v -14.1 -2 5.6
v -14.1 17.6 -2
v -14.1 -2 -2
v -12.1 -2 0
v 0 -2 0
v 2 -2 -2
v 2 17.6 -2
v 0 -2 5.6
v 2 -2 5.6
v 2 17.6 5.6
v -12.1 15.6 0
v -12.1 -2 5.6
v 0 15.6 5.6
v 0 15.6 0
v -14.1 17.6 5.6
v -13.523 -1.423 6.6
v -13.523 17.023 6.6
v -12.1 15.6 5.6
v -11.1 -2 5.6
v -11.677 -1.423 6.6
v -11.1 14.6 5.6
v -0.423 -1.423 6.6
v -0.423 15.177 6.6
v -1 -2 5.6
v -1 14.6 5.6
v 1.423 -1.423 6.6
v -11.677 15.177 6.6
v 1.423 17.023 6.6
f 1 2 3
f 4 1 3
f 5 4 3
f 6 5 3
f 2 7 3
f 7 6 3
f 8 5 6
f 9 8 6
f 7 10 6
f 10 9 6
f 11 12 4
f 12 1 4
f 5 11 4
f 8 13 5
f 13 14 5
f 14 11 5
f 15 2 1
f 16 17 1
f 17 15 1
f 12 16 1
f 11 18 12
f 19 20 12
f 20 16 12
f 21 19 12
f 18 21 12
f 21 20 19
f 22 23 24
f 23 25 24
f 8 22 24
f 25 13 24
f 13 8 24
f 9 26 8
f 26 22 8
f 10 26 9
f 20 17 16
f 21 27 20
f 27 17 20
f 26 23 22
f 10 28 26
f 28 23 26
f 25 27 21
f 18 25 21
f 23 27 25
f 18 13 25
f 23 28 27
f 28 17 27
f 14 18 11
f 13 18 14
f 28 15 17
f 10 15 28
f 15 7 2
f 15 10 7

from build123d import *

# Parameters (mm, degrees)
RESSALTO_EXTRUS_O1_DEPTH = 5.6
ESBO_O1_3_W              = 16.1
ESBO_O1_3_H              = 19.6
RESSALTO_EXTRUS_O2_DEPTH = 2
RESSALTO_EXTRUS_O3_DEPTH = 1
RESSALTO_EXTRUS_O3_DRAFT = 30


with BuildPart() as part:
    # Esboço1 → Ressalto-extrusão1 (new body)
    with BuildSketch(Plane.XY):
        Polygon((0, 0), (0, -2), (2, -2), (2, 17.6), (-14.1, 17.6), (-14.1, -2), (-12.1, -2), (-12.1, 0), (-12.1, 15.6), (0, 15.6), align=None)
    extrude(amount=RESSALTO_EXTRUS_O1_DEPTH)

    # Esboço1<3> → Ressalto-extrusão2 (add)
    with BuildSketch(Plane.XY):
        with Locations((-6.05, 7.8)):
            Rectangle(ESBO_O1_3_W, ESBO_O1_3_H)
    extrude(amount=-RESSALTO_EXTRUS_O2_DEPTH)


with BuildPart() as ressalto_extrus_o3_tool:
    # Esboço2 → Ressalto-extrusão3 (with draft: the straight prism first)
    with BuildSketch(Plane.XY.offset(5.6)):
        Polygon((-11.1, -2), (-11.1, 14.6), (-1, 14.6), (-1, -2), (2, -2), (2, 17.6), (-14.1, 17.6), (-14.1, -2), align=None)
    extrude(amount=RESSALTO_EXTRUS_O3_DEPTH)
    # Ressalto-extrusão3: the draft: its side faces are tilted about the plane it starts from
    ressalto_extrus_o3_sides = [ressalto_extrus_o3_tool.faces().sort_by_distance(p)[0] for p in [
        (-6.05, 17.6, 6.1),
        (-14.1, 7.8, 6.1),
        (-12.6, -2, 6.1),
        (-11.1, 6.3, 6.1),
        (-6.05, 14.6, 6.1),
        (-1, 6.3, 6.1),
        (0.5, -2, 6.1),
        (2, 7.8, 6.1),
    ]]
    draft(ressalto_extrus_o3_sides, Plane.XY.offset(5.6), RESSALTO_EXTRUS_O3_DRAFT)


with BuildPart() as part_1:
    add(part.part)

    # Ressalto-extrusão3: add ressalto_extrus_o3_tool
    add(ressalto_extrus_o3_tool.part)


solid = part_1.part
